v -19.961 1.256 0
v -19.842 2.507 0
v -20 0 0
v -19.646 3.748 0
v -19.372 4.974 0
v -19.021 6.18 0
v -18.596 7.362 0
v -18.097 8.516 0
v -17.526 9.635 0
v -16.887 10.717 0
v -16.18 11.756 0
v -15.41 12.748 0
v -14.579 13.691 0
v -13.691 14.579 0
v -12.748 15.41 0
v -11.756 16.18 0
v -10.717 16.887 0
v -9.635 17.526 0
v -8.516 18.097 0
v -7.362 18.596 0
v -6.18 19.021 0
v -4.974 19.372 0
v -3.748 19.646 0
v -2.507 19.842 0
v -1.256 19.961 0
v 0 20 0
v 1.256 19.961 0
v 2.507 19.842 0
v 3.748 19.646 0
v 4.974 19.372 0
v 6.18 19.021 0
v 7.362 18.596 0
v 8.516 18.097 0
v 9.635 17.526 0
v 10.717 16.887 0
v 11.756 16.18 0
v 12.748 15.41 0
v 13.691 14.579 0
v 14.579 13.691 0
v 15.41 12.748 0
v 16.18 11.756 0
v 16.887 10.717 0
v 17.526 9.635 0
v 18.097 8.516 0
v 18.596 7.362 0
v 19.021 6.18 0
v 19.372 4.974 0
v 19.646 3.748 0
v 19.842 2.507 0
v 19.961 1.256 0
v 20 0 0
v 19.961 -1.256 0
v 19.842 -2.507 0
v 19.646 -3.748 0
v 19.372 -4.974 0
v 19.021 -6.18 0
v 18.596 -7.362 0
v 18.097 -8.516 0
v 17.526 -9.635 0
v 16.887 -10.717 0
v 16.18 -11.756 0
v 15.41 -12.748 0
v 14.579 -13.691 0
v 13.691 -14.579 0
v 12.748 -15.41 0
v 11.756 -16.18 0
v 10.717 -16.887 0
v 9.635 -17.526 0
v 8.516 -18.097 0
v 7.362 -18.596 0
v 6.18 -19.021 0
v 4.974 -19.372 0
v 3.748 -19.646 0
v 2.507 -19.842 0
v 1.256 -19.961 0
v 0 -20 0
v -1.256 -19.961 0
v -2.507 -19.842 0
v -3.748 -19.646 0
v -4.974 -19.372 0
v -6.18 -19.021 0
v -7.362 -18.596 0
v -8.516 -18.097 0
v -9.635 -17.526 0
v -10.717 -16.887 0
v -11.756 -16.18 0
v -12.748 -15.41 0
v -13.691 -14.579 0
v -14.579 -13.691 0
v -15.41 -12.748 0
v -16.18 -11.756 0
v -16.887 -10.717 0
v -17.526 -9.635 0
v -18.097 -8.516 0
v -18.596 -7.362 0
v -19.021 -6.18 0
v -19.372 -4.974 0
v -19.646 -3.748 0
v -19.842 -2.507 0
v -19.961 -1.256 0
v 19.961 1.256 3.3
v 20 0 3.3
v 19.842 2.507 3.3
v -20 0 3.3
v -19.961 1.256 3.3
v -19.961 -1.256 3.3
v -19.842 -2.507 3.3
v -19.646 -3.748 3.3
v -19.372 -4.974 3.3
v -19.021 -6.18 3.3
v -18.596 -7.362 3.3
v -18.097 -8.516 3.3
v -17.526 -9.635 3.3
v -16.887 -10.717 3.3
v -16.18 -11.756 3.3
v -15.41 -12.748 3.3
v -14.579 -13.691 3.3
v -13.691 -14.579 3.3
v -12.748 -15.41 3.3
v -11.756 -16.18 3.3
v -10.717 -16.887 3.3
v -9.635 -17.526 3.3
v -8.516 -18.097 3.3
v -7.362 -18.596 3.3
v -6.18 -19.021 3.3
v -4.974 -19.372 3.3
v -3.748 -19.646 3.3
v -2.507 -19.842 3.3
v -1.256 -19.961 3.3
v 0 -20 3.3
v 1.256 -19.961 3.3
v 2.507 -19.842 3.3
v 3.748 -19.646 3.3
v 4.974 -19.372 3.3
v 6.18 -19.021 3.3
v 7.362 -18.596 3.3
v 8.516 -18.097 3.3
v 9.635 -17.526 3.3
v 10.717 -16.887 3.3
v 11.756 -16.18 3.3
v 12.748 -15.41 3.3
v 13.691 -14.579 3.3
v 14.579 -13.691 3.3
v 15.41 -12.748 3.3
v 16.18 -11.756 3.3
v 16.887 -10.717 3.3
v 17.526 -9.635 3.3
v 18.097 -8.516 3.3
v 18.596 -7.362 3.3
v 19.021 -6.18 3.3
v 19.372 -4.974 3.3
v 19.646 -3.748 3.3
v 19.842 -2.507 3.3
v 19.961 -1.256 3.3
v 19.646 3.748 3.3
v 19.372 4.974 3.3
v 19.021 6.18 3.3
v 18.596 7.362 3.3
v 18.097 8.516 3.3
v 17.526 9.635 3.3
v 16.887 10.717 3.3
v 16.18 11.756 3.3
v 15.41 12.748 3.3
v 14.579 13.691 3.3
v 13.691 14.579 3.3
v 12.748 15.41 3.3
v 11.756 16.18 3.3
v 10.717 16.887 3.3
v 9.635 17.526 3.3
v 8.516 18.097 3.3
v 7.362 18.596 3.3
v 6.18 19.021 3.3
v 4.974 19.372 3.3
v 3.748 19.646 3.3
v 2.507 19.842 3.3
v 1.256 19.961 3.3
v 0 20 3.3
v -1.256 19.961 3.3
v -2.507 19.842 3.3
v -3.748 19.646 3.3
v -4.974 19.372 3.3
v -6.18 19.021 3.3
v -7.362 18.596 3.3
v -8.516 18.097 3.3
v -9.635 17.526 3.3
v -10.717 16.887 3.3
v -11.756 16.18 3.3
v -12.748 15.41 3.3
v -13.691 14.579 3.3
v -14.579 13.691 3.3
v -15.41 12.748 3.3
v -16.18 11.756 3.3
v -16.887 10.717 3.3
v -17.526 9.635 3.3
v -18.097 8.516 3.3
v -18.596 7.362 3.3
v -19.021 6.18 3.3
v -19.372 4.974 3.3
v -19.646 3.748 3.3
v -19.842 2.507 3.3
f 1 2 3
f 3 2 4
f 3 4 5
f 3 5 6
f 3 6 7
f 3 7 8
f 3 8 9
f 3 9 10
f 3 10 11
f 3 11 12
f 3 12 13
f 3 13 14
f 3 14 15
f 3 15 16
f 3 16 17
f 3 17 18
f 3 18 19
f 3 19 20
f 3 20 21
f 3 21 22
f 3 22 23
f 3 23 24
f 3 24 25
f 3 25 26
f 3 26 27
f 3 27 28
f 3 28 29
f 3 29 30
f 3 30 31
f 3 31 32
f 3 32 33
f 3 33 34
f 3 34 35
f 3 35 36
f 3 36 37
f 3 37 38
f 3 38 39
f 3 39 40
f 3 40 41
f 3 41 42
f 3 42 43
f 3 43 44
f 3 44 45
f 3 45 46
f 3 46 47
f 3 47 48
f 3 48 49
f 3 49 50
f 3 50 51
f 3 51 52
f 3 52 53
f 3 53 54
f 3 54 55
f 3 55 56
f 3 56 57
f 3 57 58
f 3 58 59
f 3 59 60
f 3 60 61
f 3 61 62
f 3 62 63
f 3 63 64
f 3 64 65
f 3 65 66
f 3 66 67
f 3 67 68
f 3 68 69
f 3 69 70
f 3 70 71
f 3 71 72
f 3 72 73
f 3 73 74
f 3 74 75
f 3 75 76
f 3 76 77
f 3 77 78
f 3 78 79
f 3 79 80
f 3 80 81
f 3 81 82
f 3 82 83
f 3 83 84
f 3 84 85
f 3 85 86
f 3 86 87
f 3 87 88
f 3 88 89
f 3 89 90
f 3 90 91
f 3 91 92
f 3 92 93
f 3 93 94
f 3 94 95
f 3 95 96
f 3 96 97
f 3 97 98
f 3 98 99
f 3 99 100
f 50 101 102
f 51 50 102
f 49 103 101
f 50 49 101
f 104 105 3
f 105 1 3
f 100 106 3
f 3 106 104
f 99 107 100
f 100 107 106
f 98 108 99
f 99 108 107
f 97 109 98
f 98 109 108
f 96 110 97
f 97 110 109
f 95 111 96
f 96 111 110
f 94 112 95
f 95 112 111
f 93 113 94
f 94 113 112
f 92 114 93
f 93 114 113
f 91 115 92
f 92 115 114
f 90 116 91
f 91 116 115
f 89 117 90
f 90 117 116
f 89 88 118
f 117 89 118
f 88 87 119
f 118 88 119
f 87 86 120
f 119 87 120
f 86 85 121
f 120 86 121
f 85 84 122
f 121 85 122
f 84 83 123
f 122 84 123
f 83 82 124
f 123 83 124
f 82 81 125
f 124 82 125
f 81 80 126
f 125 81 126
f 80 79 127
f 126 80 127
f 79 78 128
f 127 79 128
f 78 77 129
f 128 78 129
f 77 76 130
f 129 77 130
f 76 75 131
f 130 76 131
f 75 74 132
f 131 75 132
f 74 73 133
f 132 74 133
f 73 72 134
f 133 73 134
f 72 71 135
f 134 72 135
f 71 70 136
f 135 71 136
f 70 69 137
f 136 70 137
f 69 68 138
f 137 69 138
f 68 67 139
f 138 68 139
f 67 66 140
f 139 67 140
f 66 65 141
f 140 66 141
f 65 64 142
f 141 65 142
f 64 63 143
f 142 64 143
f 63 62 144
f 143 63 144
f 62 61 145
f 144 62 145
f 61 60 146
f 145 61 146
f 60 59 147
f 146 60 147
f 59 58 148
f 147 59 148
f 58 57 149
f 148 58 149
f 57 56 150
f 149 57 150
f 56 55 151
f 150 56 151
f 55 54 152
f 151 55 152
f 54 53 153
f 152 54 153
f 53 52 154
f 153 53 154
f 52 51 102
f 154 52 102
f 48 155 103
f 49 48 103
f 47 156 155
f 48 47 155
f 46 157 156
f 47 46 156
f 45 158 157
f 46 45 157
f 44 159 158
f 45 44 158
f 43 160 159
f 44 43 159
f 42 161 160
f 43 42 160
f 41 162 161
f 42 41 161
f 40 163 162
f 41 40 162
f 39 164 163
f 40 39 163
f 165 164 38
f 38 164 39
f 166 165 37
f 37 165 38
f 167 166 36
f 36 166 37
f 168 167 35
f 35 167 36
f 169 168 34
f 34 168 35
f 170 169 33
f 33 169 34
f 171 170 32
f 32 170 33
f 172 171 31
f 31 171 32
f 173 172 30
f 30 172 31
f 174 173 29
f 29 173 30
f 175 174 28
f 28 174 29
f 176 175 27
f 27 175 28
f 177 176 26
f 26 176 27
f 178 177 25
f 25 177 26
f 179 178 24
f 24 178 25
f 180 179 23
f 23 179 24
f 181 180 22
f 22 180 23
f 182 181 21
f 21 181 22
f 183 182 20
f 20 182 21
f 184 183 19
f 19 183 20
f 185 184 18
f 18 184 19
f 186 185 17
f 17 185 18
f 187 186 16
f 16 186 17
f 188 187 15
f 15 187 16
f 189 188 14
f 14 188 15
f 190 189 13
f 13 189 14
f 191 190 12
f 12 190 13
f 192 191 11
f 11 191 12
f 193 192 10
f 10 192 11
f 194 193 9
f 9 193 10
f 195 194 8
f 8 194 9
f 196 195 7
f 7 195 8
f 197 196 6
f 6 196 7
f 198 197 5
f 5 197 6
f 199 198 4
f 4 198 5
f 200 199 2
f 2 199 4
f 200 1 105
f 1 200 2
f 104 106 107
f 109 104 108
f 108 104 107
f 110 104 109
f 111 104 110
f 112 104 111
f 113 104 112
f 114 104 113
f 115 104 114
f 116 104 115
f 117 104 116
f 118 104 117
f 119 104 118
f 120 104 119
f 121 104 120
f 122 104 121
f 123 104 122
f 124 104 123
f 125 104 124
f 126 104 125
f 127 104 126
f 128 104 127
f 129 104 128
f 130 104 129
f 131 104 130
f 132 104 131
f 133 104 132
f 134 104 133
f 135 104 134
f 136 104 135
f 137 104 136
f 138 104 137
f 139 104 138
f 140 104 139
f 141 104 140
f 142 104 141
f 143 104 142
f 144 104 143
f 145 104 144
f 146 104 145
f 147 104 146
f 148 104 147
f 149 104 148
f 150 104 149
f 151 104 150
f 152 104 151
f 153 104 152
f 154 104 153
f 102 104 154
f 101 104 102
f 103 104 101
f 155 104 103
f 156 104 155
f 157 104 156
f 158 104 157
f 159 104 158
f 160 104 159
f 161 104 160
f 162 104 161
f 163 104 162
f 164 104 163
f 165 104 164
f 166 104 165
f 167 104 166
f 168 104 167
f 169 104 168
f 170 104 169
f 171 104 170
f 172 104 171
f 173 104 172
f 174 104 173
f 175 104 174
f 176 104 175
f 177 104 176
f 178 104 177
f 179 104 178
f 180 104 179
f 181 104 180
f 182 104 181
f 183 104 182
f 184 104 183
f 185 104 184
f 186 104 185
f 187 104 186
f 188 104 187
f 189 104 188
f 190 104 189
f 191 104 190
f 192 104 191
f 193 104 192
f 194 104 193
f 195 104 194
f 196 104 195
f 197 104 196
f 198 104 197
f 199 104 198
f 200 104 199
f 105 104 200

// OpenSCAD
//-- Casino Chip
//-- Juan Gonzalez-Gomez (juan@iearobotics.com)
//-- Nov-2010
//-- GPL license

//-- That's all!
cylinder(h=3.3, r=20, $fn=100);
